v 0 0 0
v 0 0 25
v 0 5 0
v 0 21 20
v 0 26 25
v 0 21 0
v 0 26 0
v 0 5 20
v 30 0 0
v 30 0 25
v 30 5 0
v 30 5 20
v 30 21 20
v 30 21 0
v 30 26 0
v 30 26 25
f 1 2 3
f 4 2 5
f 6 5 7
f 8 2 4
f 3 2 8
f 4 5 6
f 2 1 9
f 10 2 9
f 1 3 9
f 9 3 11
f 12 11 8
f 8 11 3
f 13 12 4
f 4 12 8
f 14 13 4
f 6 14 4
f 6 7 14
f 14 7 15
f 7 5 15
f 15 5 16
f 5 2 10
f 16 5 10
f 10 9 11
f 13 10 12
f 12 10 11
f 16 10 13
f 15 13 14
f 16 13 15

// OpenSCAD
difference() {
	cube([30,16+5+5,20+5]);
	translate([-1,5,-1])
	cube([30+2,16,20+1]);
}
